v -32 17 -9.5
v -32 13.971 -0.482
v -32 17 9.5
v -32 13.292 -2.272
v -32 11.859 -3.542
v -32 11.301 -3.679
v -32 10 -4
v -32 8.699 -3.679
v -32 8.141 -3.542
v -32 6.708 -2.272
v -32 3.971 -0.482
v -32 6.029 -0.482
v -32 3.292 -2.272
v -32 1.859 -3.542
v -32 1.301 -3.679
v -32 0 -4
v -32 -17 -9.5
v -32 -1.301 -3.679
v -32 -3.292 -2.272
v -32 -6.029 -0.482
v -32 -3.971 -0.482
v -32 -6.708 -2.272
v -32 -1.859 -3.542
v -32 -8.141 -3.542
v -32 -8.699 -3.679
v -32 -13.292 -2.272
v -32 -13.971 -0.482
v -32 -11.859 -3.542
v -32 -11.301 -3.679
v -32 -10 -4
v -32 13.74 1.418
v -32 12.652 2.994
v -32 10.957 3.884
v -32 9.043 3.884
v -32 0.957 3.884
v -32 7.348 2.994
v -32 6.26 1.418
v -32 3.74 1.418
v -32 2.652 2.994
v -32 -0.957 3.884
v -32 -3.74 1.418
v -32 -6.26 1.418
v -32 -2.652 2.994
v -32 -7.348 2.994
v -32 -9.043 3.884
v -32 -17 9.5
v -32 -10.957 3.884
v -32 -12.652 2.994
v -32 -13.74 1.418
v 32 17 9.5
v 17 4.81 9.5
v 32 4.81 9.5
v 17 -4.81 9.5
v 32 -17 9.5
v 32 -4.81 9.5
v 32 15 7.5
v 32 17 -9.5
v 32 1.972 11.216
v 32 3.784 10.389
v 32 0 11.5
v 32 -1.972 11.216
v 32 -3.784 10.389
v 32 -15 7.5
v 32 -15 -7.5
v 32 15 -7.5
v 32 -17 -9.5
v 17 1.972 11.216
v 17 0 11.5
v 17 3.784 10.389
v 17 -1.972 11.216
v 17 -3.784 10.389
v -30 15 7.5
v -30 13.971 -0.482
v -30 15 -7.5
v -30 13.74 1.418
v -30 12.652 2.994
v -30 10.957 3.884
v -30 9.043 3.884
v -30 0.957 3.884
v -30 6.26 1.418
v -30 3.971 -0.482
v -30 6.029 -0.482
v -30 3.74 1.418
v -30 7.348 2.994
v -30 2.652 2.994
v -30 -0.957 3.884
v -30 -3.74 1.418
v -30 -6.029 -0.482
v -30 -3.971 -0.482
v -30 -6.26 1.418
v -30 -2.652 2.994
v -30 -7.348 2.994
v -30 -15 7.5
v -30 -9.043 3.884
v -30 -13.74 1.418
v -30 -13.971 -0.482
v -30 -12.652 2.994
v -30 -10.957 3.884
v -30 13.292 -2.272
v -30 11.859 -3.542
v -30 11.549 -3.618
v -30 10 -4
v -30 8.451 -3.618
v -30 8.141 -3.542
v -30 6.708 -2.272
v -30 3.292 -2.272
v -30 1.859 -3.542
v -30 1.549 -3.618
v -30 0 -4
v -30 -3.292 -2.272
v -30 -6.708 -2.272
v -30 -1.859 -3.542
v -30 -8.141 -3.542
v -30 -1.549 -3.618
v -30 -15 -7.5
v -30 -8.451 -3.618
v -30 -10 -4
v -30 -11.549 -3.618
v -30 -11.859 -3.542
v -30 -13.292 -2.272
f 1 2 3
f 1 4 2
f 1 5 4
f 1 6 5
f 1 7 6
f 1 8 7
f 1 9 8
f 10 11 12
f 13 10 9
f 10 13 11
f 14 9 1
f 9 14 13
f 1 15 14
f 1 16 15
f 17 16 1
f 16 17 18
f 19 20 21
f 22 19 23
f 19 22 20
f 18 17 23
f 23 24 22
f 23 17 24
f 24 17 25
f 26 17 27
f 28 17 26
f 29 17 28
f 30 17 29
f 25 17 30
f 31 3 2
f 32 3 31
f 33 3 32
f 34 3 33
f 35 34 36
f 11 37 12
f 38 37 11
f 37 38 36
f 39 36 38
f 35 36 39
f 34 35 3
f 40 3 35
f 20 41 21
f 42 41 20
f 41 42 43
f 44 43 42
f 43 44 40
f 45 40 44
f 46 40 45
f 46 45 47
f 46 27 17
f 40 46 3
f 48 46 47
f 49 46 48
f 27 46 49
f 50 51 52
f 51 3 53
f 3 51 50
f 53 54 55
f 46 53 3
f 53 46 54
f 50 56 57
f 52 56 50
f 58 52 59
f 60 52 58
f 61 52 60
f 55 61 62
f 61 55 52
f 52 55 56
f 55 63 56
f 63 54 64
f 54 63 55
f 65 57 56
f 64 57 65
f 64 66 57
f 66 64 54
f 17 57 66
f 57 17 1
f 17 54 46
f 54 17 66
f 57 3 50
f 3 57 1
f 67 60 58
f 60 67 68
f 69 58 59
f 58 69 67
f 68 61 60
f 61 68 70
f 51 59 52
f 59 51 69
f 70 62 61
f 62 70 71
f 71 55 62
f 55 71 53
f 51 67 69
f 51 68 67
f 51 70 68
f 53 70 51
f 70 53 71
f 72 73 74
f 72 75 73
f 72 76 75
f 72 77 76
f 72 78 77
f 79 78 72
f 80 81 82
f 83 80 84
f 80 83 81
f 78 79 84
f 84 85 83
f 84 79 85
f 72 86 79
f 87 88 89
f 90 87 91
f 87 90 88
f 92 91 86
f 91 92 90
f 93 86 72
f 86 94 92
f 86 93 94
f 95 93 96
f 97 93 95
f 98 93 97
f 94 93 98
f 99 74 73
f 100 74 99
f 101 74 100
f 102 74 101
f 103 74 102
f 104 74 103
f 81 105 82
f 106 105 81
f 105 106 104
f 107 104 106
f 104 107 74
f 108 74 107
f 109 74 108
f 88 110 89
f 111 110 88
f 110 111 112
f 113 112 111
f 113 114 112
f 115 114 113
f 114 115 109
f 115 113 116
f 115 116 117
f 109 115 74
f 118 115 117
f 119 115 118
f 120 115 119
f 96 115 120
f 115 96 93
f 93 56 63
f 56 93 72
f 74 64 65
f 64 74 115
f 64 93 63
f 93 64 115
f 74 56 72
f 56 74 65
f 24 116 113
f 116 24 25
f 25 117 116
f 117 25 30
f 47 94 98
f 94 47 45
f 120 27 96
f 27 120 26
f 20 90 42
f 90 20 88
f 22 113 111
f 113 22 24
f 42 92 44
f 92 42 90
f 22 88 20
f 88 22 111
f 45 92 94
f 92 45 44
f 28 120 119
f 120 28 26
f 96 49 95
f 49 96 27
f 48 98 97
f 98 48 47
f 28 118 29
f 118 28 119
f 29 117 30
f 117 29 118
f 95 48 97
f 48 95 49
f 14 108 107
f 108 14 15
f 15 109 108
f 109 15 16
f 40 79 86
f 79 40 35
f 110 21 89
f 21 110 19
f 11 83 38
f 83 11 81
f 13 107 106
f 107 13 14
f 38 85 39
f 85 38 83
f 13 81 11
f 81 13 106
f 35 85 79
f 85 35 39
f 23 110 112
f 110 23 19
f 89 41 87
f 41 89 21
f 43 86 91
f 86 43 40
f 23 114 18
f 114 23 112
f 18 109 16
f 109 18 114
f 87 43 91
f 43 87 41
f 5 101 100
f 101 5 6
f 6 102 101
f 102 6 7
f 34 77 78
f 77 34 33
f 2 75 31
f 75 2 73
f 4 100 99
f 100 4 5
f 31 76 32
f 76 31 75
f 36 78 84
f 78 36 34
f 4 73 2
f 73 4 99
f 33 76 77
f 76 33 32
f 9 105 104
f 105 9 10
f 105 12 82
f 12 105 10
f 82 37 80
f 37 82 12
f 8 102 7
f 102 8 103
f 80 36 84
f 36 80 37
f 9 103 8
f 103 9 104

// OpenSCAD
// file: holes.scad
boltHeight=100;

module DmmBolt(posX,posY,D)
  { 
   $fn=50;   
    translate([posX,posY,-1]) 
    {  
      cylinder(h=boltHeight,r=D);  
    }   
  }
  
  
 module DmmBoltHor(posX,posY,D)
  { 
   $fn=50;   
   rotate([90,0,0])
    {
    translate([posX,posY,-7]) 
    {  
      cylinder(h=boltHeight,r=D);  
    }  
   } 
  }
   
  

module DmmBoltAndScrewHole(posX,posY,D)
  { 
   $fn=50;   
    translate([posX,posY,0]) 
    { cylinder(h=2,r=D+1.5); }   
    translate([posX,posY,-1]) 
    { cylinder(h=10,r=D); }   
  }
  

module removeRectangle(posX,posY,sizX,sizY)
  {  
    translate([posX,posY,-1]) 
    {  
      cube([sizX, sizY, 10]);
    }   
  }
 
// main file
use <holes.scad>;

module afroESC20APlastic()
{
 //Covering plastic surface..   
 translate([-32 , -17 , -9.5 ]) 
  {  
      cube([64, 34, 19]);  
  } 
  
 translate([17,0,4.5]) 
  {  
   rotate([0,90,0]) {cylinder(h=15,r=7); }    
  }     
 
    
}
 

module afroESC20AHoles()
{
//Inside space for ESC  
translate([-30 , -15 , -7.5 ]) 
  {  
      cube([60, 30, 15]);  
  } 
  
//Door for sliding the ESC in 
translate([-30 , -15 , -7.5 ]) 
  {  
      cube([80, 30, 15]);  
  }  
 
/* //This causes object to be non two manifold..!
 translate([15,0,4.5]) 
  {  
   rotate([0,90,0]) {cylinder(h=25,r=5); }    
  }
*/


 //Motor Cables out RED 
 translate([-42.5, -10 ,0 ]) 
  {  
   rotate([0,90,0]) {cylinder(h=15,r=4); }    
  }  
 //Motor Cables out YELLOW
 translate([-42.5, 0 ,0 ]) 
  {  
   rotate([0,90,0]) {cylinder(h=15,r=4); }    
  }  
 //Motor Cables out BLACK
 translate([-42.5, 10 ,0 ]) 
  {  
   rotate([0,90,0]) {cylinder(h=15,r=4); }    
  }  

}
 

module afroESC20ACase()
{
 difference()
   {    
     afroESC20APlastic();
     afroESC20AHoles();
   }
}
 
 afroESC20ACase();
